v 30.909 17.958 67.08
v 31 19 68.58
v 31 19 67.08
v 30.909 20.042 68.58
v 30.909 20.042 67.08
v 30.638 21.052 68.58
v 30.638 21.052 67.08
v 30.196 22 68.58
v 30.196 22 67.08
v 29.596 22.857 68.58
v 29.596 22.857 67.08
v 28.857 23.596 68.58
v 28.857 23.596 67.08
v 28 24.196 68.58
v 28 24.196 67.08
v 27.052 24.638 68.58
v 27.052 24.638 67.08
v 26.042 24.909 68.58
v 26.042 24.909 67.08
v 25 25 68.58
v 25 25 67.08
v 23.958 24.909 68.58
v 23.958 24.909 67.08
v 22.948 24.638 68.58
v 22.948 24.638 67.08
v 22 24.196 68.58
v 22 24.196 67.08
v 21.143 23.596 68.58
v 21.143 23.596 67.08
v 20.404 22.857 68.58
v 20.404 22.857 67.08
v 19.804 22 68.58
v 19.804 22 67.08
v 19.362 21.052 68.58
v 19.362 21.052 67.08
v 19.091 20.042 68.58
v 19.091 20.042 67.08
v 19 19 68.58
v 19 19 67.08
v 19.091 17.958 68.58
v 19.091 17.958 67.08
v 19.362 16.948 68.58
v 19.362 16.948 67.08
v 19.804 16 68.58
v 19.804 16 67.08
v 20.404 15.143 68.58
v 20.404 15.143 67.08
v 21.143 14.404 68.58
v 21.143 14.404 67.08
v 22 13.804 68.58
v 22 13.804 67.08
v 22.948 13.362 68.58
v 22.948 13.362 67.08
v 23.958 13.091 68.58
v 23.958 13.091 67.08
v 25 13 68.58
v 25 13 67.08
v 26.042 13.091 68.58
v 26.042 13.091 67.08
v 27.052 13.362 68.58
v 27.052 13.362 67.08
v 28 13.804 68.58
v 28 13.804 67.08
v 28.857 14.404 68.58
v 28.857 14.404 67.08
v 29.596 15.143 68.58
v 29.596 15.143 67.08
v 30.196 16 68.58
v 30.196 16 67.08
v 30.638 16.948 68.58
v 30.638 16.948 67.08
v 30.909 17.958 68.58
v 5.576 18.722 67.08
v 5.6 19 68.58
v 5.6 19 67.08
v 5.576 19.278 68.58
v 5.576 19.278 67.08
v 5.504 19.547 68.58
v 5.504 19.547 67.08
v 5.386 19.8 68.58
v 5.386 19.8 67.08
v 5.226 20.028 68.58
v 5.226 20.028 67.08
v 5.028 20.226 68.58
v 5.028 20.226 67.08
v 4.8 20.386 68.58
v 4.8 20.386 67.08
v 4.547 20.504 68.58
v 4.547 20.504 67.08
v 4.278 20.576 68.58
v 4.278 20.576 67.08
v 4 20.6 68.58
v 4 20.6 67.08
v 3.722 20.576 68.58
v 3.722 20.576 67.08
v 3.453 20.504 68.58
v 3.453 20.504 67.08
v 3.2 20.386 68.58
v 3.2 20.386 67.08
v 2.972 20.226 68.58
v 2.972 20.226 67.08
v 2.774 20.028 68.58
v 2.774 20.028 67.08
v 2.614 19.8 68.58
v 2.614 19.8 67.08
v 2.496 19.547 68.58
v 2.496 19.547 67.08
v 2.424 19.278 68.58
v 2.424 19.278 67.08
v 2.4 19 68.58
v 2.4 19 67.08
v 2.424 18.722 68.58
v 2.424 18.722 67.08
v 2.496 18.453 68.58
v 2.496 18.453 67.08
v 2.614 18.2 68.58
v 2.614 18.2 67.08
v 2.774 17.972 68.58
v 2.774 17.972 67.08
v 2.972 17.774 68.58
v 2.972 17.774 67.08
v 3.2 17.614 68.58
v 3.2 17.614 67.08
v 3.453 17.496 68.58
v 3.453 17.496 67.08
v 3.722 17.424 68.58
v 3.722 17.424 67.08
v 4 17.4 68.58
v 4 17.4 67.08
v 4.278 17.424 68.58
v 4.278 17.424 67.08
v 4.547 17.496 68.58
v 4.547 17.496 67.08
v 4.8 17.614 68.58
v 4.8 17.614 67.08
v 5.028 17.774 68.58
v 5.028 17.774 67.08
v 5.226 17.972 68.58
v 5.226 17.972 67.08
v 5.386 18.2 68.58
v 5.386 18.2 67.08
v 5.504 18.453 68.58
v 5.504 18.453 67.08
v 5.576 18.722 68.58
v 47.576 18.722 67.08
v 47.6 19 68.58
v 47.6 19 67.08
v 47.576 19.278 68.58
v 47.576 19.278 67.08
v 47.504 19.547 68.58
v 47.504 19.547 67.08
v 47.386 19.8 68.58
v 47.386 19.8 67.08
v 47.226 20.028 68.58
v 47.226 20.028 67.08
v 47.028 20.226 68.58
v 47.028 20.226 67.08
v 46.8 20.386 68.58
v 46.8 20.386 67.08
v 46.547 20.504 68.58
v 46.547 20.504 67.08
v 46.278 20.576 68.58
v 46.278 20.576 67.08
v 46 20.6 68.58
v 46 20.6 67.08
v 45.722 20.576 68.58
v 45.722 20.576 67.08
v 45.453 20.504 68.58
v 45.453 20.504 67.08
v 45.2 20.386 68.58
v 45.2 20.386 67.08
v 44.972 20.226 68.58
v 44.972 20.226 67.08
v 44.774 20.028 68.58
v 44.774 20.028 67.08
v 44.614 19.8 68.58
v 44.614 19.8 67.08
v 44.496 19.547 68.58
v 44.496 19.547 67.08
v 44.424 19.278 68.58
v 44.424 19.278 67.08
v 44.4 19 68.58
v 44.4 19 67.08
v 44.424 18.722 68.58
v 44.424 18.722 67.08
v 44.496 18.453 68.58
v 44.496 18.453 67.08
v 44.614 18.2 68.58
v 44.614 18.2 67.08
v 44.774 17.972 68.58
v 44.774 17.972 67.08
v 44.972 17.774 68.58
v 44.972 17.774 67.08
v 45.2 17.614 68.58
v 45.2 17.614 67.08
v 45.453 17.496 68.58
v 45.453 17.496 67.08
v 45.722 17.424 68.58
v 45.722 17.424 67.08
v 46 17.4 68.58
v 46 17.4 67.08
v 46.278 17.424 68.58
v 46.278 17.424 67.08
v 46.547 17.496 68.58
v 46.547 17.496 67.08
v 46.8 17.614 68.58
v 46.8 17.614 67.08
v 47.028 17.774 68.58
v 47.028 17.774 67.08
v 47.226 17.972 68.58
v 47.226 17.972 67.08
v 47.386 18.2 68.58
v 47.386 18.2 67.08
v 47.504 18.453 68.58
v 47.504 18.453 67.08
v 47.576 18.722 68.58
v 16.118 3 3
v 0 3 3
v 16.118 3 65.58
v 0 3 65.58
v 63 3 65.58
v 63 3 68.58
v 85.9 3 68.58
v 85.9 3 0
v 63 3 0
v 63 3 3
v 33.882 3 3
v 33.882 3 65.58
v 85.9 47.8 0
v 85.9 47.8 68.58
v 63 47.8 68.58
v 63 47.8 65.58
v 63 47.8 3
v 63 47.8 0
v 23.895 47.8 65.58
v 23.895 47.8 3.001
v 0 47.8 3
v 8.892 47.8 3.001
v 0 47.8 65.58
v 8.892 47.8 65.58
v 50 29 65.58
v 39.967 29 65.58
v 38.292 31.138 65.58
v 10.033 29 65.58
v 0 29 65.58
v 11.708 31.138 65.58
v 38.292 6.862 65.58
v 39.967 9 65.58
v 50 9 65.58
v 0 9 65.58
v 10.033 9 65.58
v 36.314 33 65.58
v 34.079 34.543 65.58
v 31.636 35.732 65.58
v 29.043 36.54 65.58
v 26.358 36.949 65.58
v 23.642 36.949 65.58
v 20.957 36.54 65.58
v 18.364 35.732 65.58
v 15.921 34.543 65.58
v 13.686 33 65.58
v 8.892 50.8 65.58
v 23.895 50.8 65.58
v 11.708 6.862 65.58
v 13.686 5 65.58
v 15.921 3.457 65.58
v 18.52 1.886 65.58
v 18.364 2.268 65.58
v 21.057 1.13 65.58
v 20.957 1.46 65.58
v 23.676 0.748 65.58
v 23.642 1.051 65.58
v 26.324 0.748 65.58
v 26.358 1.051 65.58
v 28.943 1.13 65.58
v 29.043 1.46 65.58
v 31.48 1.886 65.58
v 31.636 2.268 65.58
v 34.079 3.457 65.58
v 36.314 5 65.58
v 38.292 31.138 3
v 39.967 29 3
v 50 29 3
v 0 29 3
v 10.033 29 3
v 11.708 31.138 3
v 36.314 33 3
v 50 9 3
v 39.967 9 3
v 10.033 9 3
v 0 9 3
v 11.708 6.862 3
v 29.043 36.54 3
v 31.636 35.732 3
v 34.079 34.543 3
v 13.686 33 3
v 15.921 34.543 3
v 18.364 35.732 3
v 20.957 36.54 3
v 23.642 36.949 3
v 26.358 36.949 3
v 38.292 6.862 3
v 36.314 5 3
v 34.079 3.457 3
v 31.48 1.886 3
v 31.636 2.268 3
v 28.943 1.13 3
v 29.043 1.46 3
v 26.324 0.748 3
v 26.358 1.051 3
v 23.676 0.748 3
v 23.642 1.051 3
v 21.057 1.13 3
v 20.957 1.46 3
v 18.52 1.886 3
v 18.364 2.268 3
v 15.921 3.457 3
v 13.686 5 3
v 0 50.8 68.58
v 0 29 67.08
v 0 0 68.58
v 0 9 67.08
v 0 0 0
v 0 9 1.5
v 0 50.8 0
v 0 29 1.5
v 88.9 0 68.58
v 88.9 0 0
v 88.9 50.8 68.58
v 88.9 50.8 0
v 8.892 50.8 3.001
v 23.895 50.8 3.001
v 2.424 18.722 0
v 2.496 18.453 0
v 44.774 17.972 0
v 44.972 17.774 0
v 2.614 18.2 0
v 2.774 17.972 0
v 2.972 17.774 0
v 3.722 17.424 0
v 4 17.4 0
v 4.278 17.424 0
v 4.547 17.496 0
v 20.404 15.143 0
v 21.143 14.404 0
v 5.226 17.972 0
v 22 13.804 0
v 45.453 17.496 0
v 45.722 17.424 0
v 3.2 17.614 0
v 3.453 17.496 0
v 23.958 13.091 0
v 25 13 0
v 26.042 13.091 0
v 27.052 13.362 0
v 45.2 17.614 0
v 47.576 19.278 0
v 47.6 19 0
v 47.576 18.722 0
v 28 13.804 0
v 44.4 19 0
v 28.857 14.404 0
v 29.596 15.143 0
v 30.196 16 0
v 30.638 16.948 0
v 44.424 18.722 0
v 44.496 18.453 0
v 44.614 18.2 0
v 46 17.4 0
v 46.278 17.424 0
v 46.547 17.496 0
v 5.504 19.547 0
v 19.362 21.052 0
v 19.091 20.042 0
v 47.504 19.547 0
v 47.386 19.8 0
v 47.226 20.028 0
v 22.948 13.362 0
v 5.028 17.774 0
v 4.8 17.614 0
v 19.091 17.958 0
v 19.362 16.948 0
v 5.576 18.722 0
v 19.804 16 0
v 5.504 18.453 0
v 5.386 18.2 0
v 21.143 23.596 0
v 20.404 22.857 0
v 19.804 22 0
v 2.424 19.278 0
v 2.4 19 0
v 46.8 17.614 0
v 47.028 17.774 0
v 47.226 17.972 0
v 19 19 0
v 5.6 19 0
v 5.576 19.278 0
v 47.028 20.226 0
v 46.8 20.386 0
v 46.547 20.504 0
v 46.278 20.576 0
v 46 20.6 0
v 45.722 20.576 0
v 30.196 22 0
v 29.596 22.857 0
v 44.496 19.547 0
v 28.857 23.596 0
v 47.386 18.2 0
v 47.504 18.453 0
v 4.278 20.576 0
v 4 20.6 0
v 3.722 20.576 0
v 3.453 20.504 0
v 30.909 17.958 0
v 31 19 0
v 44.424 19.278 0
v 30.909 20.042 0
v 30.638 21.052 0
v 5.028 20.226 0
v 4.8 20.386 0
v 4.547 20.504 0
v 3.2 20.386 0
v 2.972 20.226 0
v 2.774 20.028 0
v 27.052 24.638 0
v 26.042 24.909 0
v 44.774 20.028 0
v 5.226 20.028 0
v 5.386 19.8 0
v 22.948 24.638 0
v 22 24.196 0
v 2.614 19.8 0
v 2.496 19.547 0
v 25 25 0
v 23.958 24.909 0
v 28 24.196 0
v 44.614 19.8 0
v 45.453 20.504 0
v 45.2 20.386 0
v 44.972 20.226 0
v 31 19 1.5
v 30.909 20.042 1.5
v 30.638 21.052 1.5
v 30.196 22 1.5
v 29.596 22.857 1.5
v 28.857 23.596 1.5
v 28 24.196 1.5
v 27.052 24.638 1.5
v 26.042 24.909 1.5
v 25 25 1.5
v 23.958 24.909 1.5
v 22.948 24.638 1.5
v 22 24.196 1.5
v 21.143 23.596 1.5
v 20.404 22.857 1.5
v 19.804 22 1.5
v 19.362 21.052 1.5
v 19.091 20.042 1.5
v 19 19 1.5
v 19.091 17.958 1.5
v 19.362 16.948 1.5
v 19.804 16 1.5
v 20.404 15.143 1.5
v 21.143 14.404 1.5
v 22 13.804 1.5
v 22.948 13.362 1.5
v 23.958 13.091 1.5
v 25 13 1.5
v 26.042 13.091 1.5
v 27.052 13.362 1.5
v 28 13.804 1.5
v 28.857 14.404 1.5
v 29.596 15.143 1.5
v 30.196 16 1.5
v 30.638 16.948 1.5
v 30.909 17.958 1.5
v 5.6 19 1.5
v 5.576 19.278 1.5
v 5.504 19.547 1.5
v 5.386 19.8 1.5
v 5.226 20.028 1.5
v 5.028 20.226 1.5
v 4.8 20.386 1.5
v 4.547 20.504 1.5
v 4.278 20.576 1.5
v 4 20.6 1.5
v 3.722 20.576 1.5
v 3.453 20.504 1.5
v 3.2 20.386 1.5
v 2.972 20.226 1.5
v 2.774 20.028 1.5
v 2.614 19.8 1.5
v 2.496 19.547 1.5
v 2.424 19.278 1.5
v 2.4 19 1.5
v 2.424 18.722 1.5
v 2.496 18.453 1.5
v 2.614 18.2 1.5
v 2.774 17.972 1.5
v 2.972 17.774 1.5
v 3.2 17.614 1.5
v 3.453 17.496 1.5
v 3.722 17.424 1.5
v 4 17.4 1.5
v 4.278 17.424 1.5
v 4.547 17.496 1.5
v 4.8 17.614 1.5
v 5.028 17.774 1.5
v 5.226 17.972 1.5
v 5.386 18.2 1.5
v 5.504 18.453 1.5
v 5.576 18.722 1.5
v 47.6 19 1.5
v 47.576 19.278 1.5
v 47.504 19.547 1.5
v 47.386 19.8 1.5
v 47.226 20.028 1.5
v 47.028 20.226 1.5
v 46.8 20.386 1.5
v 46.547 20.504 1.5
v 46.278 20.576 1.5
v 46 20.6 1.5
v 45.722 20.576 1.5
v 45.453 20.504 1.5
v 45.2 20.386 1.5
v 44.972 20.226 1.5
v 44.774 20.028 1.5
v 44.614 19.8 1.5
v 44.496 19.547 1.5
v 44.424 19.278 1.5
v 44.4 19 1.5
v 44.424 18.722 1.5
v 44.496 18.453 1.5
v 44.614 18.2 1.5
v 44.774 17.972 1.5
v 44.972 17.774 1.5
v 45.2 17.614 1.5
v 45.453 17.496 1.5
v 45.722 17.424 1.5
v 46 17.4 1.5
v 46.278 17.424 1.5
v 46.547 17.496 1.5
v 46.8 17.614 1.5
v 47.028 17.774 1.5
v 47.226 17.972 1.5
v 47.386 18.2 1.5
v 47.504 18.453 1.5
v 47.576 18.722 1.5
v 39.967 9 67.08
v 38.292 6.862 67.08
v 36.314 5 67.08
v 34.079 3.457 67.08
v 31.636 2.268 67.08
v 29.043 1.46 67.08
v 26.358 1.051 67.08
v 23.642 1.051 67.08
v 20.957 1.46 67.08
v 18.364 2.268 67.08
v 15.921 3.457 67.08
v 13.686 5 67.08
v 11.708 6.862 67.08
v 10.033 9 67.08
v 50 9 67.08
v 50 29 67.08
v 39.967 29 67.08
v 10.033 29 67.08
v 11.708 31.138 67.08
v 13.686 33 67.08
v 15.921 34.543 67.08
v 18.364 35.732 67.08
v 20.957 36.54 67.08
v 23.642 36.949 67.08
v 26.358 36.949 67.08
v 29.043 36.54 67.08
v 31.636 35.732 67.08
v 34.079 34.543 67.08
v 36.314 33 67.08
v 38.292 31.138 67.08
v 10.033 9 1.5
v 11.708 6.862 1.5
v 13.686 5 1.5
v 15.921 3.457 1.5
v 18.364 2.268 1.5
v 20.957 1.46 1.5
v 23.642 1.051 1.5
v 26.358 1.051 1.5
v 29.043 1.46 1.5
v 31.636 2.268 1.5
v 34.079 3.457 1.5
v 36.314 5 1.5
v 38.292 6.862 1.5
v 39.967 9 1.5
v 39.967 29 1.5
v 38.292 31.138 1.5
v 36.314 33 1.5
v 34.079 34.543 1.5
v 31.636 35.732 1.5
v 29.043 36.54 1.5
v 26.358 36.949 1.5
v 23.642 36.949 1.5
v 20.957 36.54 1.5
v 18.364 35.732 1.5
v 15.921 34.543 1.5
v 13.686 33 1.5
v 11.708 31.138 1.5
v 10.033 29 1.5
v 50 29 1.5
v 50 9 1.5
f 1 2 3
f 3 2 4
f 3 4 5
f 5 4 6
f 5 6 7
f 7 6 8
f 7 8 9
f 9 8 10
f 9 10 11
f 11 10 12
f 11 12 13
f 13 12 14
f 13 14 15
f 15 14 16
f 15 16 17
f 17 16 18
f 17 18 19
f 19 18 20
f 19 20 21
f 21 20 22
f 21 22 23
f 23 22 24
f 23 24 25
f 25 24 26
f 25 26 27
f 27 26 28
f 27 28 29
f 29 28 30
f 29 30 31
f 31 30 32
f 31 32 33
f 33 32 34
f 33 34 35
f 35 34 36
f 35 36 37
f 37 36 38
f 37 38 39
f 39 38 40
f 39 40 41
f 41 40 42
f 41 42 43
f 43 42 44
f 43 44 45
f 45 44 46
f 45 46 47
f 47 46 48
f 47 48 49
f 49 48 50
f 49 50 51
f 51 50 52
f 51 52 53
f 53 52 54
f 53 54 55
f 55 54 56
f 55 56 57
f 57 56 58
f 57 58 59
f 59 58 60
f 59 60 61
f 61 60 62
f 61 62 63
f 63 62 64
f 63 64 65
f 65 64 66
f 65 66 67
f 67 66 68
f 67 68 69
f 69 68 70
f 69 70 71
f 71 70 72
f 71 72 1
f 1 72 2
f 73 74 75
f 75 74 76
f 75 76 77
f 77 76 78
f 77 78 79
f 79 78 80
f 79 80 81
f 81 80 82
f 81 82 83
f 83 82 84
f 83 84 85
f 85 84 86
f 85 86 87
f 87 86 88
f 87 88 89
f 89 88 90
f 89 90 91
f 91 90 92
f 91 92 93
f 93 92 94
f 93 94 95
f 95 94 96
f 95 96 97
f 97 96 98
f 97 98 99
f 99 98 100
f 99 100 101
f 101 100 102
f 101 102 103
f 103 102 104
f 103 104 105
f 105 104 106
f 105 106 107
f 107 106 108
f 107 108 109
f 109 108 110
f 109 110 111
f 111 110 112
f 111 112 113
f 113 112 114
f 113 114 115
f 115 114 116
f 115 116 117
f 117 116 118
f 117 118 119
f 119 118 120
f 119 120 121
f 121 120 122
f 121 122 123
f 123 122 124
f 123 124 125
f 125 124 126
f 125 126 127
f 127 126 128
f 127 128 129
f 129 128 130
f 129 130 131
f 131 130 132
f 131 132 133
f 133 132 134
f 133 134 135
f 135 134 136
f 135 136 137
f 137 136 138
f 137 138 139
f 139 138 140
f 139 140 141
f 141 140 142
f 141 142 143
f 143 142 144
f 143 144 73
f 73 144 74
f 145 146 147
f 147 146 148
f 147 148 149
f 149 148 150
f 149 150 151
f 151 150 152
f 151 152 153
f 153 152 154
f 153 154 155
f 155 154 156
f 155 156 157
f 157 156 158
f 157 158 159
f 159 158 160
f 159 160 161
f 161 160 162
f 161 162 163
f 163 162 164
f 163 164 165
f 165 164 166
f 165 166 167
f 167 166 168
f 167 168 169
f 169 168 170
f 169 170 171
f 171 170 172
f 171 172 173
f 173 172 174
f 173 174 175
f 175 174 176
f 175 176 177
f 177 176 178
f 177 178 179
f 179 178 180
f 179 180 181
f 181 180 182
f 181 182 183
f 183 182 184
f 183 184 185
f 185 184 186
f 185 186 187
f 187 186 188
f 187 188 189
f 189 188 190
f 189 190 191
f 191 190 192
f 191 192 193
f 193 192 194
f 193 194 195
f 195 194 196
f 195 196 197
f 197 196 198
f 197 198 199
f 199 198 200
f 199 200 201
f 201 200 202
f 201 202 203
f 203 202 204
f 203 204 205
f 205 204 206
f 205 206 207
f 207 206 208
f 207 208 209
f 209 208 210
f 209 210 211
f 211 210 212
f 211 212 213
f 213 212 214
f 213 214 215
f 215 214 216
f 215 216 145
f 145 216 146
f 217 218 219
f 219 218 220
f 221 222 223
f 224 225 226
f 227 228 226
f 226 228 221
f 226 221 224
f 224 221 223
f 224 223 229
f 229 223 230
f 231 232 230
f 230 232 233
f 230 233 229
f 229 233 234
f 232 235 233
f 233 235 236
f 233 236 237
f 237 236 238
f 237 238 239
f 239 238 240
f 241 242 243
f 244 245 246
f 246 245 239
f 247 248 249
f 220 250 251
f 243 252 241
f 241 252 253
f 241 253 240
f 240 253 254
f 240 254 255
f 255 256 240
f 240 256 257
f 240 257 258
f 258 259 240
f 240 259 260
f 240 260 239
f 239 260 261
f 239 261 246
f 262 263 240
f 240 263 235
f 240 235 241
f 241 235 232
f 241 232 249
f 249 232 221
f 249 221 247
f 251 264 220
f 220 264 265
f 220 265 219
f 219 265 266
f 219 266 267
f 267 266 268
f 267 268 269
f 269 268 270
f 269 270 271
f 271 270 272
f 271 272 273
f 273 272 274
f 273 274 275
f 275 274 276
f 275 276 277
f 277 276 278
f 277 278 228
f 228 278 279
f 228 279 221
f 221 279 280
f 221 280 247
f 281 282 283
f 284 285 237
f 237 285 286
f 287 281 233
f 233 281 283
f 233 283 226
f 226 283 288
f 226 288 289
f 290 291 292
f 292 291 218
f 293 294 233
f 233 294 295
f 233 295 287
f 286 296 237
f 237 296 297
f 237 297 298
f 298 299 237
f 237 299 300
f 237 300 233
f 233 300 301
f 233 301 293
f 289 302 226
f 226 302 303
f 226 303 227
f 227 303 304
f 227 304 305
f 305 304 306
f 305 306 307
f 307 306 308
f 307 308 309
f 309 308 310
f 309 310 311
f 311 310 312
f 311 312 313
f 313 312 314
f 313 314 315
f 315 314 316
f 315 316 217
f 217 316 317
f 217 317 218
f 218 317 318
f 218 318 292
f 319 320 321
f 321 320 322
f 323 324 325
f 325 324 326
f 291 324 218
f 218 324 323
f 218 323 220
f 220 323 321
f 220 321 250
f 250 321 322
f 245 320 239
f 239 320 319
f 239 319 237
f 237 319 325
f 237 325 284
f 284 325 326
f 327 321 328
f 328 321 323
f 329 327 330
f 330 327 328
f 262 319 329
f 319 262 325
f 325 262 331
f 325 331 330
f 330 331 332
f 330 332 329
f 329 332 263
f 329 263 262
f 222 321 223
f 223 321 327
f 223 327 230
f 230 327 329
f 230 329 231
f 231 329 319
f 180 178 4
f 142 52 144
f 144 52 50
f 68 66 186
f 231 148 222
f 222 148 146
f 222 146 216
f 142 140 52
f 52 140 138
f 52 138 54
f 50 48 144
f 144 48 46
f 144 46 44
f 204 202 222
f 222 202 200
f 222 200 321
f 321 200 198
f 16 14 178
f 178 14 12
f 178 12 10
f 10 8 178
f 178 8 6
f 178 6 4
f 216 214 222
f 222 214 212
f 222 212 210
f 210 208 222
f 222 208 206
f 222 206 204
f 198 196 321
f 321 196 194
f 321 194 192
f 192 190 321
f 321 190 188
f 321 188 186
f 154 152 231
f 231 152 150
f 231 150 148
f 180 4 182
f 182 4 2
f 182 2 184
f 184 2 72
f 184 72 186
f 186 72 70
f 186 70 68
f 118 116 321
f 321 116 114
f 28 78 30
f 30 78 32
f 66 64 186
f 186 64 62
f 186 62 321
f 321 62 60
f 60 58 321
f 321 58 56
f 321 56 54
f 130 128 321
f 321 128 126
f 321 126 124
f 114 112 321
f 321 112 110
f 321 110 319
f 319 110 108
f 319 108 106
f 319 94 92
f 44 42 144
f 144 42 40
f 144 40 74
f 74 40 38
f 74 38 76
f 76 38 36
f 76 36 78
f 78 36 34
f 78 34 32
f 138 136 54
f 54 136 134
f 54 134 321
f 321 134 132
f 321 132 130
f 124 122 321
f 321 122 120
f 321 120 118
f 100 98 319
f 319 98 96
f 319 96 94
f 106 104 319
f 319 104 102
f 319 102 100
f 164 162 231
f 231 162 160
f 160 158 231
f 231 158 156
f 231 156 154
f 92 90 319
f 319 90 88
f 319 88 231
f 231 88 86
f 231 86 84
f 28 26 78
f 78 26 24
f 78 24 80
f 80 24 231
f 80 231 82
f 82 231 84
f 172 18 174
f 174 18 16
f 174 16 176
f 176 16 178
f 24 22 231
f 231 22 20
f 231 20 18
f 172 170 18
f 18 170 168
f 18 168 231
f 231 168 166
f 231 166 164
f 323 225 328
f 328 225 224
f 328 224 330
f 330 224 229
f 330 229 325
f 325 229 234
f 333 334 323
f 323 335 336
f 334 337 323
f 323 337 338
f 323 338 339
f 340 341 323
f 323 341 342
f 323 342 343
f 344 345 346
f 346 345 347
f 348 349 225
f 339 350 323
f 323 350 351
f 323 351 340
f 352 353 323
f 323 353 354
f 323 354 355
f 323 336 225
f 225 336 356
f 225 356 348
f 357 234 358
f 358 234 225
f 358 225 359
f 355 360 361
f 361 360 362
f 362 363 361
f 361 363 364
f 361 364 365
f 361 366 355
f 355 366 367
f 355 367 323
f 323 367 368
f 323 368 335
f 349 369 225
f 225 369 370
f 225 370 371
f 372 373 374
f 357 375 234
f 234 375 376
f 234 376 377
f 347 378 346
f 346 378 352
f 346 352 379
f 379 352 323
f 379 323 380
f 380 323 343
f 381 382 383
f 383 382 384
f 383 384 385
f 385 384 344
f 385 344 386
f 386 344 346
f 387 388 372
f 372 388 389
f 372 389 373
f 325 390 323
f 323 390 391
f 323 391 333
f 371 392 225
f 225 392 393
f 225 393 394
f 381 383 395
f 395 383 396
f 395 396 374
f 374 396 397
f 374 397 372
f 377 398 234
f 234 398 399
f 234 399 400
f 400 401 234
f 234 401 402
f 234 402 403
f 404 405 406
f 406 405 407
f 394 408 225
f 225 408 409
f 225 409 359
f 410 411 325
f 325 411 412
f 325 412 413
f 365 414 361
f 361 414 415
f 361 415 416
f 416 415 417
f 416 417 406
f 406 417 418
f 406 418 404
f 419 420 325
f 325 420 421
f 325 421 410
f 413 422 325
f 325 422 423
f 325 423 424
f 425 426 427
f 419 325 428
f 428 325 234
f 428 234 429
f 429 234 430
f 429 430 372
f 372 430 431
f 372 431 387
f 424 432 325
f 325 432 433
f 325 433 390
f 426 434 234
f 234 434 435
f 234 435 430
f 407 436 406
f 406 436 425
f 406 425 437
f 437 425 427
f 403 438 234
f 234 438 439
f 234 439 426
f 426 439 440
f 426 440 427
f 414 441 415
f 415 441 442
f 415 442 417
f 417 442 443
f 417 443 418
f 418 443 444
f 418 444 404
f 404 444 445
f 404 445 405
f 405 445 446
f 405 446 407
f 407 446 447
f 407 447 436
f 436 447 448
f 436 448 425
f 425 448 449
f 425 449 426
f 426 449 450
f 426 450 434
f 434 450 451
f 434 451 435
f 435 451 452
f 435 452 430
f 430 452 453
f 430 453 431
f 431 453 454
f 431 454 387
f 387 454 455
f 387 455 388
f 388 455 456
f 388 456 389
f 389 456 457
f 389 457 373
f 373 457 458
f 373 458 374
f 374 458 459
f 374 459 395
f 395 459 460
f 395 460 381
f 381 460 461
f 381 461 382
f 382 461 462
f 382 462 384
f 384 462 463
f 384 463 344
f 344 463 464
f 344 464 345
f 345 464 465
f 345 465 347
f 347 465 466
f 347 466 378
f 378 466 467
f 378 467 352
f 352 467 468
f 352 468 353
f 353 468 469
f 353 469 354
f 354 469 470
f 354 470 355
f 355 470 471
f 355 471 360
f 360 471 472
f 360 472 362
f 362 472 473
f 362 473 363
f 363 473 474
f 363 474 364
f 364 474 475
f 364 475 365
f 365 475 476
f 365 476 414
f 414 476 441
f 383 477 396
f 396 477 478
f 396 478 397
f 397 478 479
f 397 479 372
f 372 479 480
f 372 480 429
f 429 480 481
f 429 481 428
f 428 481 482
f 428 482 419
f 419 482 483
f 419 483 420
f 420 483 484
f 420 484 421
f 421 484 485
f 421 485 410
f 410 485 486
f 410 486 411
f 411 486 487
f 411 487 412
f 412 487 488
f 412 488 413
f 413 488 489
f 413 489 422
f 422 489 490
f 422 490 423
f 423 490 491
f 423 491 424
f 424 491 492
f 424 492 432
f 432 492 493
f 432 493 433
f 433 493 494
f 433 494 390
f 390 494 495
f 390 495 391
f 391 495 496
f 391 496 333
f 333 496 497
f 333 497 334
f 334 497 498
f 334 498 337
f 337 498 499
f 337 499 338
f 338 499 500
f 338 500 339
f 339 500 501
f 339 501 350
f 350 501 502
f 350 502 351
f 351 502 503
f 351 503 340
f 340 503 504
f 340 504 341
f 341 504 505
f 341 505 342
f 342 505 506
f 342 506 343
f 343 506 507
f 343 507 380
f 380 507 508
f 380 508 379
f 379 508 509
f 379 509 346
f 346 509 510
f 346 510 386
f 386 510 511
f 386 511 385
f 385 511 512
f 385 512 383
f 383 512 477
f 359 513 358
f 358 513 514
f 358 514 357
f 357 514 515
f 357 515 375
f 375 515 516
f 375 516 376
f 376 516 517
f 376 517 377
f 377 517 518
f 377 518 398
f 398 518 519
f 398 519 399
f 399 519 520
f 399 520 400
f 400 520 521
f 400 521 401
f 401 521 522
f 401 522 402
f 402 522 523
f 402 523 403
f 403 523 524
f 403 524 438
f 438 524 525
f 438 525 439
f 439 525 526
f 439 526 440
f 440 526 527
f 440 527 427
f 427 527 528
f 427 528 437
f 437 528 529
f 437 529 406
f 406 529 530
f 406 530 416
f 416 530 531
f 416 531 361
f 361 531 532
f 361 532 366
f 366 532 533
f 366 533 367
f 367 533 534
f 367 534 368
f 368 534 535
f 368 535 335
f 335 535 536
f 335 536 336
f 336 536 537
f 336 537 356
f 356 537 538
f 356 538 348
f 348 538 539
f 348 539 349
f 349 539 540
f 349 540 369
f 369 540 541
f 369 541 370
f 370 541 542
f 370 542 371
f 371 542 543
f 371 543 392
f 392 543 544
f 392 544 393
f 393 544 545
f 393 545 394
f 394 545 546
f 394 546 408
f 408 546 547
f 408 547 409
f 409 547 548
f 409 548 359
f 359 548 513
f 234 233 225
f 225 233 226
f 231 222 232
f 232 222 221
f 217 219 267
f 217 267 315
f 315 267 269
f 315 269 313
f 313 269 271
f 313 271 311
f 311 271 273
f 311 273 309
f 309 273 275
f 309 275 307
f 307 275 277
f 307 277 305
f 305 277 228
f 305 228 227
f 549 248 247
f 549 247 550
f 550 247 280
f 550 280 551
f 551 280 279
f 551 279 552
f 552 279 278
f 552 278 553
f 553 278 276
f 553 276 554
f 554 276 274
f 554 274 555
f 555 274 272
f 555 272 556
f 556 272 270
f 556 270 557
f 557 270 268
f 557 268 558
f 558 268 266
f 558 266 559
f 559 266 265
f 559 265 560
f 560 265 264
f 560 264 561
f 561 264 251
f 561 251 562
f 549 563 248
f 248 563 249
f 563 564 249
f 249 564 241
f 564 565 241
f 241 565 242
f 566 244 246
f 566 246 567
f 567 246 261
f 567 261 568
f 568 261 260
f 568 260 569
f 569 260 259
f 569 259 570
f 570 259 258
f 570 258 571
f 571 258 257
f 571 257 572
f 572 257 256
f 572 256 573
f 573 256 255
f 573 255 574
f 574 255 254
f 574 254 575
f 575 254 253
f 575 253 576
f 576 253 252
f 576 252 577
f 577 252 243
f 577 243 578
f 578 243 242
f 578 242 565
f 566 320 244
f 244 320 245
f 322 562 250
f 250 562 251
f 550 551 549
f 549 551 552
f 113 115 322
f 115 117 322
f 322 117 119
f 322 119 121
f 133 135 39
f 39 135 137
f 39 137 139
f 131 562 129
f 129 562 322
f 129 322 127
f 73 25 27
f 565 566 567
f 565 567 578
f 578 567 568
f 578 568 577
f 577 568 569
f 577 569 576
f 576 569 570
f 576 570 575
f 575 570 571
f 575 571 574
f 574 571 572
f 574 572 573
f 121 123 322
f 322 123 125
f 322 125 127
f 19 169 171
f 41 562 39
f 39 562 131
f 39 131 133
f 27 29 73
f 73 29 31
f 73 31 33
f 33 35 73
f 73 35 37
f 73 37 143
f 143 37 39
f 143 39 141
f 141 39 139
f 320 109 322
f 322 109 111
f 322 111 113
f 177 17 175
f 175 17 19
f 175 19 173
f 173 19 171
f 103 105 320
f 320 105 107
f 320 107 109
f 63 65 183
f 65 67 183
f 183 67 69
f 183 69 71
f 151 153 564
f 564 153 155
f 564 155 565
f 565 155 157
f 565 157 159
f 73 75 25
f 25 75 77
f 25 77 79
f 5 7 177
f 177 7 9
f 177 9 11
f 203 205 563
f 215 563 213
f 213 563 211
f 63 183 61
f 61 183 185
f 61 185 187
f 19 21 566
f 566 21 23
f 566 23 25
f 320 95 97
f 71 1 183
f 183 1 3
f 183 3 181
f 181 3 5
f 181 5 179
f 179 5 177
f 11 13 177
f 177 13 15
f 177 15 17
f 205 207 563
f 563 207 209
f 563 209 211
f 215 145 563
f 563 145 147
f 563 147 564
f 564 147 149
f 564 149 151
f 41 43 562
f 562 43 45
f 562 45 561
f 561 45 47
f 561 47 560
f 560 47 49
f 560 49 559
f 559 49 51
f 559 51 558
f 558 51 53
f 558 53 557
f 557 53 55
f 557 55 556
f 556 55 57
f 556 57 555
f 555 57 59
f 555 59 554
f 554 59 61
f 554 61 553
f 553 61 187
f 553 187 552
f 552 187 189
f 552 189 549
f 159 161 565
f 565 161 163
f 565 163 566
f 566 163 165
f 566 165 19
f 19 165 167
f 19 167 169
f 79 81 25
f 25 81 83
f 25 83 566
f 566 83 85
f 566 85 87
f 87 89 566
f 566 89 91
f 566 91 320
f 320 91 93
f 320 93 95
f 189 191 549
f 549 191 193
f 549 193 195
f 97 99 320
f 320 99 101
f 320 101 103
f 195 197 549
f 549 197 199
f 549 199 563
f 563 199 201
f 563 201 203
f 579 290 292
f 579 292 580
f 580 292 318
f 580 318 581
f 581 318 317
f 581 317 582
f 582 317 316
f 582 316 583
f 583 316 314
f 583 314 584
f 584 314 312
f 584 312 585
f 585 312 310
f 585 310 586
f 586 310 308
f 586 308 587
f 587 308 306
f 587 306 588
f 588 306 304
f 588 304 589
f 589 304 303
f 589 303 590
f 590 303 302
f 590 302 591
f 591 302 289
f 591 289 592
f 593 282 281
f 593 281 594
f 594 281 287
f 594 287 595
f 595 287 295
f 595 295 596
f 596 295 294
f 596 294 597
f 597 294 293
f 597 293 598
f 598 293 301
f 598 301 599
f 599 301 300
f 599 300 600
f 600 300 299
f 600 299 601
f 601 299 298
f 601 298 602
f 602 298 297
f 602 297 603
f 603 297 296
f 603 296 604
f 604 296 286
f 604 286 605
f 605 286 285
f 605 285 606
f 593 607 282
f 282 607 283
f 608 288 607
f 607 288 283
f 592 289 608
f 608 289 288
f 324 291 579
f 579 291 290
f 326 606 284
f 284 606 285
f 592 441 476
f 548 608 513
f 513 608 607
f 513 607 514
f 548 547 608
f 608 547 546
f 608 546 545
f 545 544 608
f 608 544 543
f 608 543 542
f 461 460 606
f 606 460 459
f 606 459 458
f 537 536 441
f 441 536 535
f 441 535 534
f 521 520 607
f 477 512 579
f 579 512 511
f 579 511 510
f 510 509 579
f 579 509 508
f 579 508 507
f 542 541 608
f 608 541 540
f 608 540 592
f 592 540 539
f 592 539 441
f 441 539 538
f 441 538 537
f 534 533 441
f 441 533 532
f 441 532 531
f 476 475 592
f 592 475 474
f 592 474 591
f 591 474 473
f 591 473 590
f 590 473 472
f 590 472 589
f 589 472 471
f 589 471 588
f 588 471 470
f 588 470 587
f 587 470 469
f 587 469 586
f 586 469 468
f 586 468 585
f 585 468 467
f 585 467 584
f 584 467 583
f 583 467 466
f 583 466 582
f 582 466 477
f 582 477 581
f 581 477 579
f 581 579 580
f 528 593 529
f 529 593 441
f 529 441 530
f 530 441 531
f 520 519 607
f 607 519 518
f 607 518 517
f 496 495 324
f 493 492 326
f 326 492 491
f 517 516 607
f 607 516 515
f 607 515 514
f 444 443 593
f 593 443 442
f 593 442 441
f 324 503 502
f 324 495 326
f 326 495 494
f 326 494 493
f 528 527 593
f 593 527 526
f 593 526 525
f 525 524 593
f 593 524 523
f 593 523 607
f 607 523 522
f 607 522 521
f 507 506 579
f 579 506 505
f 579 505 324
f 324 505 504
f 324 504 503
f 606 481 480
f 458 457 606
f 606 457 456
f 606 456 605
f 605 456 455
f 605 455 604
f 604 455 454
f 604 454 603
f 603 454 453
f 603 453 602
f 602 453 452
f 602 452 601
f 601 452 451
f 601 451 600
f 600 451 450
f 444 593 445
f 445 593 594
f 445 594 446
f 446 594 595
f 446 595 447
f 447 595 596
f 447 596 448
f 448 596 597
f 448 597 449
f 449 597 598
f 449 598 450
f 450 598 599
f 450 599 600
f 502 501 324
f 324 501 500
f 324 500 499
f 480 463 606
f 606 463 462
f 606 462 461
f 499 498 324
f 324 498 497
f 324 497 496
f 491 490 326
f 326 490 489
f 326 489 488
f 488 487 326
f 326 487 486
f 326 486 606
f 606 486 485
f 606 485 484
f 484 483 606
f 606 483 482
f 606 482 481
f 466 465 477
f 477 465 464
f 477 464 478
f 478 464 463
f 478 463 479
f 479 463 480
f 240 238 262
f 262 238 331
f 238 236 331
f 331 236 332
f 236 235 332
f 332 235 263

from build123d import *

# Parameters (mm, degrees)
SKETCH1_W           = 88.9
SKETCH1_H           = 50.8
BOSS_EXTRUDE1_DEPTH = 68.58
SHELL10_T           = 3
SKETCH4_W           = 62.58
SKETCH4_H           = 44.8
CUT_EXTRUDE2_DEPTH  = 10
SKETCH2_R           = 6
SKETCH2_R_2         = 1.6
SKETCH2_W           = 22.9
SKETCH2_H           = 44.8
CUT_EXTRUDE3_DEPTH  = 68.59
SKETCH5_R           = 18.3
CUT_EXTRUDE4_DEPTH  = 62.58
CUT_EXTRUDE7_START  = -1.5
SKETCH10_R          = 1.6
SKETCH10_R_2        = 6
CUT_EXTRUDE7_DEPTH  = 1.5
SKETCH10_8_R        = 1.6
SKETCH10_8_R_2      = 6
CUT_EXTRUDE8_DEPTH  = 64.08
SKETCH12_W          = 15.003225859
SKETCH12_H          = 62.579342489
CUT_EXTRUDE9_DEPTH  = 3


with BuildPart() as part:
    # Sketch1 → Boss-Extrude1 (new body)
    with BuildSketch(Plane.XY):
        with Locations((44.45, 25.4)):
            Rectangle(SKETCH1_W, SKETCH1_H)
    extrude(amount=BOSS_EXTRUDE1_DEPTH)

    # Shell10 (no face opened: a closed hollow body)
    add(offset(amount=-SHELL10_T, mode=Mode.PRIVATE), mode=Mode.SUBTRACT)

    # Sketch4 → Cut-Extrude2 (cut)
    with BuildSketch(Plane.ZY):
        with Locations((34.29, 25.4)):
            Rectangle(SKETCH4_W, SKETCH4_H)
    extrude(amount=-CUT_EXTRUDE2_DEPTH, mode=Mode.SUBTRACT)

    # Sketch2 → Cut-Extrude3 (cut)
    with BuildSketch(Plane.XY.offset(68.58)):
        with Locations((25, 19)):
            Circle(SKETCH2_R)
        with Locations((4, 19)):
            Circle(SKETCH2_R_2)
        with Locations((46, 19)):
            Circle(SKETCH2_R_2)
        with Locations((74.45, 25.4)):
            Rectangle(SKETCH2_W, SKETCH2_H)
    extrude(amount=-CUT_EXTRUDE3_DEPTH, mode=Mode.SUBTRACT)

    # Sketch5 → Cut-Extrude4 (cut)
    with BuildSketch(Plane(origin=(0, 0, 65.58), x_dir=(-1, 0, 0), z_dir=(0, 0, -1))):
        with Locations((-25, 19)):
            Circle(SKETCH5_R)
    extrude(amount=CUT_EXTRUDE4_DEPTH, mode=Mode.SUBTRACT)

    # Sketch10 → Cut-Extrude7 (cut)
    with BuildSketch(Plane(origin=(0, 0, 65.58), x_dir=(-1, 0, 0), z_dir=(0, 0, -1)).offset(CUT_EXTRUDE7_START)):
        with BuildLine():
            Line((-10.033370453, 9), (0, 9))
            Line((0, 9), (0, 29))
            Line((0, 29), (-10.033370453, 29))
            ThreePointArc((-10.033370453, 29), (-25, 37), (-39.966629547, 29))
            Line((-39.966629547, 29), (-50, 29))
            Line((-50, 29), (-50, 9))
            Line((-50, 9), (-39.966629547, 9))
            ThreePointArc((-39.966629547, 9), (-25, 1), (-10.033370453, 9))
        make_face()
        with Locations((-4, 19)):
            Circle(SKETCH10_R, mode=Mode.SUBTRACT)
        with Locations((-25, 19)):
            Circle(SKETCH10_R_2, mode=Mode.SUBTRACT)
        with Locations((-46, 19)):
            Circle(SKETCH10_R, mode=Mode.SUBTRACT)
    extrude(amount=CUT_EXTRUDE7_DEPTH, mode=Mode.SUBTRACT)

    # Sketch10<8> → Cut-Extrude8 (cut)
    with BuildSketch(Plane(origin=(0, 0, 65.58), x_dir=(-1, 0, 0), z_dir=(0, 0, -1))):
        with BuildLine():
            Line((-10.033370453, 9), (0, 9))
            Line((0, 9), (0, 29))
            Line((0, 29), (-10.033370453, 29))
            ThreePointArc((-10.033370453, 29), (-25, 37), (-39.966629547, 29))
            Line((-39.966629547, 29), (-50, 29))
            Line((-50, 29), (-50, 9))
            Line((-50, 9), (-39.966629547, 9))
            ThreePointArc((-39.966629547, 9), (-25, 1), (-10.033370453, 9))
        make_face()
        with Locations((-4, 19)):
            Circle(SKETCH10_8_R, mode=Mode.SUBTRACT)
        with Locations((-25, 19)):
            Circle(SKETCH10_8_R_2, mode=Mode.SUBTRACT)
        with Locations((-46, 19)):
            Circle(SKETCH10_8_R, mode=Mode.SUBTRACT)
    extrude(amount=CUT_EXTRUDE8_DEPTH, mode=Mode.SUBTRACT)

    # Sketch12 → Cut-Extrude9 (cut)
    with BuildSketch(Plane(origin=(0, 50.8, 0), x_dir=(1, 0, 0), z_dir=(0, 1, 0))):
        with Locations((16.393449041, -34.290328755)):
            Rectangle(SKETCH12_W, SKETCH12_H)
    extrude(amount=-CUT_EXTRUDE9_DEPTH, mode=Mode.SUBTRACT)


solid = part.part
